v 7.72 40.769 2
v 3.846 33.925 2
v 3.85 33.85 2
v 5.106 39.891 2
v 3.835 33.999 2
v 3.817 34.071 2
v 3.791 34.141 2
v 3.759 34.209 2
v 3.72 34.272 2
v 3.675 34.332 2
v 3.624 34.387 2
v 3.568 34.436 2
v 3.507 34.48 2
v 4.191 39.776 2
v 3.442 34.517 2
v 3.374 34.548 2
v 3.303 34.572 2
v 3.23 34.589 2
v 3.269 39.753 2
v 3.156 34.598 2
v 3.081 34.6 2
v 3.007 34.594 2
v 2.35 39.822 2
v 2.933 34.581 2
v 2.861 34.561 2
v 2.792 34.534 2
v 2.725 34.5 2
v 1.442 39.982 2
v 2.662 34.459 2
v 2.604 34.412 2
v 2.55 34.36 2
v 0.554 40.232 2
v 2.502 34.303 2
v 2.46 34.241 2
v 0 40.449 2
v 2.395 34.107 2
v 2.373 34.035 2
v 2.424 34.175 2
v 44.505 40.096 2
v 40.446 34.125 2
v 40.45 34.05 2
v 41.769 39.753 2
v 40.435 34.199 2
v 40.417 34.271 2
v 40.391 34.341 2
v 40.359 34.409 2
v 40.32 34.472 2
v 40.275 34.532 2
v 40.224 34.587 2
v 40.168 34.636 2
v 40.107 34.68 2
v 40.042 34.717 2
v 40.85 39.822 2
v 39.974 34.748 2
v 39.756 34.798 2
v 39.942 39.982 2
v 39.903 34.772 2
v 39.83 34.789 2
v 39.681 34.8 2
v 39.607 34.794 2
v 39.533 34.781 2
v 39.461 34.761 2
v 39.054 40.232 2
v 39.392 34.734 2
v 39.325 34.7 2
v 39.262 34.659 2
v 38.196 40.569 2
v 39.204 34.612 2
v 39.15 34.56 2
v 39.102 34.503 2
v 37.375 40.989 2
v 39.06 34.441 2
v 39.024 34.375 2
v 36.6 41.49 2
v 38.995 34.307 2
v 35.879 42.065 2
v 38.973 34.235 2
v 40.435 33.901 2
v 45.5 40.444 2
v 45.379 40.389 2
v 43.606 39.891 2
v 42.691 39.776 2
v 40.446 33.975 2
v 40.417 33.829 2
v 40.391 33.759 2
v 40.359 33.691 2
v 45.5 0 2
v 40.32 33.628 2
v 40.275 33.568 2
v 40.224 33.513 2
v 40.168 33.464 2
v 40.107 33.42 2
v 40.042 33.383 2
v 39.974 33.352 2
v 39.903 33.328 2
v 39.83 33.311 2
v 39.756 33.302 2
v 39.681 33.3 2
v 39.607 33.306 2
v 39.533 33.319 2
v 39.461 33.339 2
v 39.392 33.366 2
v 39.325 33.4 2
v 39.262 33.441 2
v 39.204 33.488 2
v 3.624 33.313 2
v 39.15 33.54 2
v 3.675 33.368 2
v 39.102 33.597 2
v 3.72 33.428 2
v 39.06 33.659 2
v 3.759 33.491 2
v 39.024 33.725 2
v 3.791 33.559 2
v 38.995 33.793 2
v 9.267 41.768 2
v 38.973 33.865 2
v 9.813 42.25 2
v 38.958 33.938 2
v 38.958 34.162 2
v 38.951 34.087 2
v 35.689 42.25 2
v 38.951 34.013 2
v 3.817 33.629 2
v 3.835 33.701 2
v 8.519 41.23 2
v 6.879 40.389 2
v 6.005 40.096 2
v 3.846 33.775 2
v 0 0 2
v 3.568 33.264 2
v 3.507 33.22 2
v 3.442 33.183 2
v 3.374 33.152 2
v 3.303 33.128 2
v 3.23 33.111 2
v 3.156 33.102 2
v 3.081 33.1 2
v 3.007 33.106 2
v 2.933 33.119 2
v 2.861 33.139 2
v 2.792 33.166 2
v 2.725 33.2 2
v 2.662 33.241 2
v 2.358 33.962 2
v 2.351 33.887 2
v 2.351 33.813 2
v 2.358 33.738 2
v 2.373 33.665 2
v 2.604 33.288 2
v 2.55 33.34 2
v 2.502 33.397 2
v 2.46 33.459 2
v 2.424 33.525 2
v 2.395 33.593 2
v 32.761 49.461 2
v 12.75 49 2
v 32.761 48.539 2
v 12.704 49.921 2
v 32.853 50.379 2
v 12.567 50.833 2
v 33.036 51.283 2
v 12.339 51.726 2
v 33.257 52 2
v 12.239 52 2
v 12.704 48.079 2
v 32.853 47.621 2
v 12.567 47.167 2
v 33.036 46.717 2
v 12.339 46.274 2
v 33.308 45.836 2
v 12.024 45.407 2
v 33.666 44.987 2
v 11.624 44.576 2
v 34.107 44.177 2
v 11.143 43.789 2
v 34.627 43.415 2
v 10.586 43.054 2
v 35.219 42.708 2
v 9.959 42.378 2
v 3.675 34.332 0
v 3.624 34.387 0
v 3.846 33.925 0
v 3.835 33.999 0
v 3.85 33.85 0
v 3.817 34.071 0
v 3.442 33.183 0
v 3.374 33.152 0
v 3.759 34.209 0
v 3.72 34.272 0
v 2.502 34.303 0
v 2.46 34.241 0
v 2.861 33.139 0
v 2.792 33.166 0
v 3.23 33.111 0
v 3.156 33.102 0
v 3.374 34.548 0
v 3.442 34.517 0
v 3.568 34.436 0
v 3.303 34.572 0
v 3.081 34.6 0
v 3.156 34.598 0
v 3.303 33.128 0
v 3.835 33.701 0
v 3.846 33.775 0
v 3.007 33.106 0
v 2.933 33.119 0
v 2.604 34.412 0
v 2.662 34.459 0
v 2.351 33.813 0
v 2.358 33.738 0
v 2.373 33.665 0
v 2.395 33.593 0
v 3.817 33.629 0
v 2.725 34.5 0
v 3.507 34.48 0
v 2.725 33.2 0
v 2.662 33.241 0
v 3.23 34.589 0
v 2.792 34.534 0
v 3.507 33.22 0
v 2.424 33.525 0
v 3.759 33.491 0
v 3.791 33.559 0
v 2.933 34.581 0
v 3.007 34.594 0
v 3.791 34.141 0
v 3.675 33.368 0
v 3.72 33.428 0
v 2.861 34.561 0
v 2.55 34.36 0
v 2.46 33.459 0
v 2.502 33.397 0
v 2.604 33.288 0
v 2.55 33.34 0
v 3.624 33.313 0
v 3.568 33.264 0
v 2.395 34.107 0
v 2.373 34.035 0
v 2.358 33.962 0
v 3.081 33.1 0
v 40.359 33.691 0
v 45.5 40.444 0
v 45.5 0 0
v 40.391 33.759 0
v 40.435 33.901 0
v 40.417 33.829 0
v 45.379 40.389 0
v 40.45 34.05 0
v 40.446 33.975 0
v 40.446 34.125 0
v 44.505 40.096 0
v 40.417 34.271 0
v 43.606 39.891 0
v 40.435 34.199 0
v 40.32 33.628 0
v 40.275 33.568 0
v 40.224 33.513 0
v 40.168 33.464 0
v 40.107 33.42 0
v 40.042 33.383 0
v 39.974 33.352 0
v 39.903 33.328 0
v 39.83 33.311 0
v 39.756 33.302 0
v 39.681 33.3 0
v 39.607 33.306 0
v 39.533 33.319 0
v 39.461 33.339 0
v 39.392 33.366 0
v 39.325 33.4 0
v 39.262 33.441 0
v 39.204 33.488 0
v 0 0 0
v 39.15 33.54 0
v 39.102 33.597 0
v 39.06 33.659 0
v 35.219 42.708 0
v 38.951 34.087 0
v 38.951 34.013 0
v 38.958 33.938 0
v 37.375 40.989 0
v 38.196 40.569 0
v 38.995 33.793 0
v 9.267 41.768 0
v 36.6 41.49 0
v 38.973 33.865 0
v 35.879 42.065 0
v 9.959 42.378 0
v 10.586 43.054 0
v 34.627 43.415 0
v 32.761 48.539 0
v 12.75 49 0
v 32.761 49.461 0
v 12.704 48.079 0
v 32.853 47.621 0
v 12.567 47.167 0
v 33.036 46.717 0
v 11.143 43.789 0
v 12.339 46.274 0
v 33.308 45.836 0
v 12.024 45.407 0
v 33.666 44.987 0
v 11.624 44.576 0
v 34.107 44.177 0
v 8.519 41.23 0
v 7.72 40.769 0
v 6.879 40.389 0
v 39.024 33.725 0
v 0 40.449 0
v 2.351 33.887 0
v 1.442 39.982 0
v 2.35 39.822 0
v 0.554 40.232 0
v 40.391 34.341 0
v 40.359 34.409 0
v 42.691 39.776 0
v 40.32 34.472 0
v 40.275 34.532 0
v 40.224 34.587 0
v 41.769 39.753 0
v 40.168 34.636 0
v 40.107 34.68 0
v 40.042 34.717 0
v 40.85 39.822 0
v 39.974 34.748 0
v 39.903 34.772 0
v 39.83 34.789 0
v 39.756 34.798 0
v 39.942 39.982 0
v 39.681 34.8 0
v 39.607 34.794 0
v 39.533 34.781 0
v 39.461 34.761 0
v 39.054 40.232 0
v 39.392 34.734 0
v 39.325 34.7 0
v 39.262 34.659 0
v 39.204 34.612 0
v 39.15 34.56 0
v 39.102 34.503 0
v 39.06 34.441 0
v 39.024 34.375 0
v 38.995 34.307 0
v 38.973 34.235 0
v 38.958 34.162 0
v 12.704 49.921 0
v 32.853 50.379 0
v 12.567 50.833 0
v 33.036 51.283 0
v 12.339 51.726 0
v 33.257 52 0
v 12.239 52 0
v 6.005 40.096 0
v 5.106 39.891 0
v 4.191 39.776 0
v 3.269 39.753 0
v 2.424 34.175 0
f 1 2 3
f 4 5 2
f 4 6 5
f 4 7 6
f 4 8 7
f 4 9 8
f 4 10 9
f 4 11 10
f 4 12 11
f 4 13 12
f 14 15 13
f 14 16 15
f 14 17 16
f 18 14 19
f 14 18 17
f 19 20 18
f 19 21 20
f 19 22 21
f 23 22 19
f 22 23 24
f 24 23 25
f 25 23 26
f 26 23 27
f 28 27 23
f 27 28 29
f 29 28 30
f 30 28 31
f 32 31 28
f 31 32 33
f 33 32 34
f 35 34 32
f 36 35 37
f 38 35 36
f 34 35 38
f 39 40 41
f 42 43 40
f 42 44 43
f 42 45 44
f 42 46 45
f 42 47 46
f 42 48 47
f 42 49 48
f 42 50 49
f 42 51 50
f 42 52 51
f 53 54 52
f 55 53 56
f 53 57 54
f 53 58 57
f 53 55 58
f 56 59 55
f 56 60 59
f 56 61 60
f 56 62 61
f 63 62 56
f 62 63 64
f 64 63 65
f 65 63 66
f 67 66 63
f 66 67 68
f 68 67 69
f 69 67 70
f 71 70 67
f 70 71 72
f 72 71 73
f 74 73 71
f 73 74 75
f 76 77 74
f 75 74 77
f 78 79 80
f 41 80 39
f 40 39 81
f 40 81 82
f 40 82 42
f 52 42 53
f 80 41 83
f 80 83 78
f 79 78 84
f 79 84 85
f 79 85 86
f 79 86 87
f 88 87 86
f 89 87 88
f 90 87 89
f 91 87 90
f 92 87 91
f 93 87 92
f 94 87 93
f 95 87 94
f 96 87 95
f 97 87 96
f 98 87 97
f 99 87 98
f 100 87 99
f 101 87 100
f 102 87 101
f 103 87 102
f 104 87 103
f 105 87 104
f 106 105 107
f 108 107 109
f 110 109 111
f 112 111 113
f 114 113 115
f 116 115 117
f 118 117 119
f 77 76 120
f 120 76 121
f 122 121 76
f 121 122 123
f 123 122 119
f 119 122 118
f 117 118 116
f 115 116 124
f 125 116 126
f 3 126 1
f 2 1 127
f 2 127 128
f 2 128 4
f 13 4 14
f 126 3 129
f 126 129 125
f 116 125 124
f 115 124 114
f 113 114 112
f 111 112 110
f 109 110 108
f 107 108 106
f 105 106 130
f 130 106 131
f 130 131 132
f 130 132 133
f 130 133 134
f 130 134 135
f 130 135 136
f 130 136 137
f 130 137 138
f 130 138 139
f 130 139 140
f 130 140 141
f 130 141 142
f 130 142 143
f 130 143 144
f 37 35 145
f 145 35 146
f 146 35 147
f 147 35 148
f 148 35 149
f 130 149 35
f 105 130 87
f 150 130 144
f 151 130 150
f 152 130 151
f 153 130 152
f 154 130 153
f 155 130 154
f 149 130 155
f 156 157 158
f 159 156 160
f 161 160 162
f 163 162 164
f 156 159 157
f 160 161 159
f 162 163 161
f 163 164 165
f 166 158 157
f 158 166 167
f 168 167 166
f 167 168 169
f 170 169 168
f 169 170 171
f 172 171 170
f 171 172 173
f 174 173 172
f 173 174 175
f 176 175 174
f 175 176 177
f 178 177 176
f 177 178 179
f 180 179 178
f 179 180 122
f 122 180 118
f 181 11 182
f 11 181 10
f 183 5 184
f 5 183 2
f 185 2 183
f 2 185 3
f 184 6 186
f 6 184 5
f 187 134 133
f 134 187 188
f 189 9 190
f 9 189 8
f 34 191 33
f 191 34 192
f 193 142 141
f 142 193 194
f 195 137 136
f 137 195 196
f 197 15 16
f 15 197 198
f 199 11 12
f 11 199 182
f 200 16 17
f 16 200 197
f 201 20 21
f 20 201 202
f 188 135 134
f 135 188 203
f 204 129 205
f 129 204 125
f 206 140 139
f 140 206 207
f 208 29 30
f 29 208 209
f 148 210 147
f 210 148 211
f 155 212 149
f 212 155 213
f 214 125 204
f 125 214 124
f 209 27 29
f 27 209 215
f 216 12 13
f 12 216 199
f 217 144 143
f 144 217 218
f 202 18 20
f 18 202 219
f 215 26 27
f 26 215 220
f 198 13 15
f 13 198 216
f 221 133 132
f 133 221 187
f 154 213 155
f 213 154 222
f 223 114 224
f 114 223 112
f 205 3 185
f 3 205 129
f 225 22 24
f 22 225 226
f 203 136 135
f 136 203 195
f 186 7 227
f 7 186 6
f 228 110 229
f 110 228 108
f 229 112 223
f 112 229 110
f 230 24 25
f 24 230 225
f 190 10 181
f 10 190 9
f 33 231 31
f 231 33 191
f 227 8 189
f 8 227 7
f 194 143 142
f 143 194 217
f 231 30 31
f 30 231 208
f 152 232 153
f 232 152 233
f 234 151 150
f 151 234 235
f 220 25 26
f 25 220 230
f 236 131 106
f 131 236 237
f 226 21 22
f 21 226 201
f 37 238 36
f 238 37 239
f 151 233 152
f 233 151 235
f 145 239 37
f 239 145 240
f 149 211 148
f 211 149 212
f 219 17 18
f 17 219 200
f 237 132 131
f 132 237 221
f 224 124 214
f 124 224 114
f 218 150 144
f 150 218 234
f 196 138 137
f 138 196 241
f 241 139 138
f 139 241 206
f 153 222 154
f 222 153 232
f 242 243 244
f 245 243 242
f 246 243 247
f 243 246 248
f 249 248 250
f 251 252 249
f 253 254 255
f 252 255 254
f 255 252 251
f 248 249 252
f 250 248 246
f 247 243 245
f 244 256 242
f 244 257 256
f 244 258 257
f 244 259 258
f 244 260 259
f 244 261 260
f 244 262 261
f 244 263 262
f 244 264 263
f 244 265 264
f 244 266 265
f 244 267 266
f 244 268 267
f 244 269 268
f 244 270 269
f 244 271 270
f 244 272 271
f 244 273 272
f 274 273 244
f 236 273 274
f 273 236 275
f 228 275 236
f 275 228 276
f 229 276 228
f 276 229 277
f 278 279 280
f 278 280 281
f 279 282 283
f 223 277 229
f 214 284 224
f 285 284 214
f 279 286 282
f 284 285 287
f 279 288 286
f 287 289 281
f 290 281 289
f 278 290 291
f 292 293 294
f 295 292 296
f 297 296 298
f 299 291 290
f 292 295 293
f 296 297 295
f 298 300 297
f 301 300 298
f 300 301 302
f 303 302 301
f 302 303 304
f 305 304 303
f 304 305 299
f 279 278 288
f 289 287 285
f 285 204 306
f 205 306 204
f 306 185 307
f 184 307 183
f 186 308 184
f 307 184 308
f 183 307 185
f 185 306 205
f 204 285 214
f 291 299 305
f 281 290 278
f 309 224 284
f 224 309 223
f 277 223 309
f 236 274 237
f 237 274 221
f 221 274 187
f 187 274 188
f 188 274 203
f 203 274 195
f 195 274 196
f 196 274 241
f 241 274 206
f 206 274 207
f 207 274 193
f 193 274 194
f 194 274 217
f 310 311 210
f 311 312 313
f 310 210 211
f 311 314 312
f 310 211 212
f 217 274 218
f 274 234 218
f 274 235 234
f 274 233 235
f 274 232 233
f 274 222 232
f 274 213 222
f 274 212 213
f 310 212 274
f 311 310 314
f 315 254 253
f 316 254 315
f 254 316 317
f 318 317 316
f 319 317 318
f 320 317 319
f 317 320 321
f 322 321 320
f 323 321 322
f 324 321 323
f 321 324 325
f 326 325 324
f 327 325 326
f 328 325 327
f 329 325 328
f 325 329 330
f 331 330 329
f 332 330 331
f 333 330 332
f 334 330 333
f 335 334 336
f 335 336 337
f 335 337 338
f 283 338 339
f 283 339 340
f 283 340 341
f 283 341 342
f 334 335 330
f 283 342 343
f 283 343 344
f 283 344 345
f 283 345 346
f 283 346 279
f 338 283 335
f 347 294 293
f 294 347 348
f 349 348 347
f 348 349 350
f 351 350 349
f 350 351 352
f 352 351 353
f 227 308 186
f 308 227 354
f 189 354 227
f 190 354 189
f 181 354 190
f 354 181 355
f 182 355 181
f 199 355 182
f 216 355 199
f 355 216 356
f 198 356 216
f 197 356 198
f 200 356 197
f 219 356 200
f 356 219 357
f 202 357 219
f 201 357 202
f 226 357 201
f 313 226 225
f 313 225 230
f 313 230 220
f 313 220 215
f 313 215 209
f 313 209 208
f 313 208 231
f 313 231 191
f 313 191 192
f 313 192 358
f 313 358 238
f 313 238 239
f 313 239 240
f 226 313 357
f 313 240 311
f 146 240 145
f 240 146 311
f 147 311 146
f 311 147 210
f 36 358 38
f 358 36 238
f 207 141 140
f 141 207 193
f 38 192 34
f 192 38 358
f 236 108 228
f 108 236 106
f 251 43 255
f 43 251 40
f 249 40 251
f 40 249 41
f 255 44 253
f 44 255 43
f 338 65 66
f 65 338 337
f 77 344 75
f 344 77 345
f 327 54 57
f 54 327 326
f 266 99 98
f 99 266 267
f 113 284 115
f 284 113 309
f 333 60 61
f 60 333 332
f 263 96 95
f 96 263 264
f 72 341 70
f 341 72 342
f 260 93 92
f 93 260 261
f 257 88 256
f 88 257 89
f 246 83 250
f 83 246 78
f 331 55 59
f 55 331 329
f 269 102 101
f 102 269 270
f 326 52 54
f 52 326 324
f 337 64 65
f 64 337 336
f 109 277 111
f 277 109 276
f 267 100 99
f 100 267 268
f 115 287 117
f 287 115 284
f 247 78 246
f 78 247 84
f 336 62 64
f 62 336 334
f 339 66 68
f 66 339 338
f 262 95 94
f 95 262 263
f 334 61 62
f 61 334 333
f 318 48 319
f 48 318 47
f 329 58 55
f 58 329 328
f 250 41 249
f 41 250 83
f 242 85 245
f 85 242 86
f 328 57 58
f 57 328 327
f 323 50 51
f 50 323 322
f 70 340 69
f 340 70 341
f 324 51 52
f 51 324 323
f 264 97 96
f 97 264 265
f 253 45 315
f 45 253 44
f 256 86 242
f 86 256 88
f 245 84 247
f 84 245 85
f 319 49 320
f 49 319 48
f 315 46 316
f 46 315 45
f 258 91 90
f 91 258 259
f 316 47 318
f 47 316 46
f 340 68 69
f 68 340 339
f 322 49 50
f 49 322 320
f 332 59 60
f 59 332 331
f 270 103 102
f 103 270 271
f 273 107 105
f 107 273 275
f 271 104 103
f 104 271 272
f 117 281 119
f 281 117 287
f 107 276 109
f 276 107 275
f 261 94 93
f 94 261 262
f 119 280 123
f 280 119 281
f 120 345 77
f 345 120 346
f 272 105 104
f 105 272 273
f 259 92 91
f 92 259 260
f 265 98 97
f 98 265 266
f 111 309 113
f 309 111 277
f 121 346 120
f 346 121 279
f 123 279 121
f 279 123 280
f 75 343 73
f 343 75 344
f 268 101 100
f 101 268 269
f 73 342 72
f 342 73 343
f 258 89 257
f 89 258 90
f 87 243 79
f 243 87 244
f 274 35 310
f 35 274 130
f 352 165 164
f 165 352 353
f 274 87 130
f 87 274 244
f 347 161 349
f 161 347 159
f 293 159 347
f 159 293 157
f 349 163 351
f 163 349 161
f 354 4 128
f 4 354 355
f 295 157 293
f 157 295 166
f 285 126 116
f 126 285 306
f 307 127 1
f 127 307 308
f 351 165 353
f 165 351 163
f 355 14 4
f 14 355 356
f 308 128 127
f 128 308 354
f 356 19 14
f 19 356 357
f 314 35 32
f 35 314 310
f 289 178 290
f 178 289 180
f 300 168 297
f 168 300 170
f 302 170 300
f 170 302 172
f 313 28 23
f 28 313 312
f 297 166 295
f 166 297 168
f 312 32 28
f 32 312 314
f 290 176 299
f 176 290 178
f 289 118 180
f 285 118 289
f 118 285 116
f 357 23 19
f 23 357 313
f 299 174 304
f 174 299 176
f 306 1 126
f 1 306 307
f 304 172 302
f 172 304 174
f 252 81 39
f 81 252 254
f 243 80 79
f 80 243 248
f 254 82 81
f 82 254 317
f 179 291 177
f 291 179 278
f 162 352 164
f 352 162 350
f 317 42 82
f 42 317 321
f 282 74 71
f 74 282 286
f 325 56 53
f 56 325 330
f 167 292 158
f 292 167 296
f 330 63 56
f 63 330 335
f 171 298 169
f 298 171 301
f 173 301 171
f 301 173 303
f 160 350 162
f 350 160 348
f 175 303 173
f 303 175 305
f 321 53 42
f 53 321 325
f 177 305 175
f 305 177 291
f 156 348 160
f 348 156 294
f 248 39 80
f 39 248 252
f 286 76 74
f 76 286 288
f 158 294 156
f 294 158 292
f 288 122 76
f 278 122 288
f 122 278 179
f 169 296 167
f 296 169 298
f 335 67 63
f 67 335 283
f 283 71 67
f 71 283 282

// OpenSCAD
// file: 3_1_pcb.scad
//$fn = 63;
//pcb();

module pcb() {
    pcb_w = 45.5;
    pcb_d = 50;
    pcb_h = 5;
    translate([pcb_w-28,0,0]) cube([18.5,6.5,1]);
    translate([0,6.5,0]) cube([pcb_w,43.5,1]);
    translate([3.1,pcb_d-8.4,-2]) cylinder(d=1.5, h=2);
    translate([pcb_w-5.8,pcb_d-8.2,-2]) cylinder(d=1.5, h=2);
}
// file: 2_1_buck_converter.scad
// Model
//$fn = 255;
//difference() {
//    bc_w = 21.5;
//    bc_d = 44;
//    bc_h = 13.5;
//    buck_body(bc_w, bc_d, bc_h);
//}

// Buck converter body
module buck_body(width, depth, height) {
    // Main body
    cube([width,depth,height]);
    
    // Motor screw holes
    sh_size = 3.5;
    sh_h = 2;
    translate([2.5,11,-sh_h]) cylinder(d=sh_size,h=sh_h);
    translate([19,32.5,-sh_h]) cylinder(d=sh_size,h=sh_h);
}
// file: 1_3_charger.scad
//charger(0.5);

module charger(error = 0) {
    cube([18+error, 20+error, 5]);
    translate([4.5,20,1]) cube([9+error, 2+error, 3]);
}
// file: 1_2_battery.scad
// Model
//$fn = 255;
//difference() {
//    bat_d = 18.5;
//    bat_h = 65;
//    battery_body(bat_d, bat_h);
//}

// Battery body
module battery_body(diameter, height) {
    // Main body
    translate([diameter/2,diameter/2,0]) cylinder(d=diameter,h=height);
}
// file: 1_1_motor.scad
include <0_corner_cutout.scad>

// Model
//$fn = 63;
//motor_l = 42;   motor_h = 47.5;   pull = 3;
//motor_body(motor_l, motor_h);
//translate([0,0,motor_h]) mirror([0,0,1]) motor_body(motor_l, motor_h, pull);

// Motor body
module motor_body(length,height,height_pull=0) {
    height = height + height_pull;
    difference() {
        // Main body
        translate([0,0,-height_pull]) 
        cube([length,length,height]);
    
        // Corner rounding
        rounding = 7;
        translate([0,0,-height_pull]) corner_cut(rounding, height);
        translate([0, motor_l,-height_pull]) 
        rotate(270, [0,0,1]) corner_cut(rounding, height);
        translate([motor_l,0,-height_pull]) 
        rotate(90, [0,0,1]) corner_cut(rounding, height);
        translate([motor_l,motor_l,-height_pull]) 
        rotate(180, [0,0,1]) corner_cut(rounding, height);
    }
    
    // Cable extensions
        cable_w = 16;
        cable_d = 10;
        cable_h = 9 + height_pull;
    cable_shift = (length - cable_w)/2;
    translate([cable_shift,length,-height_pull]) cube([cable_w,cable_d,cable_h]);
    
    // Rotary plate
        rotary_base_d = 22; // diameter
        rotary_base_h = 2;  // height
    translate([length/2,length/2,height-height_pull]) cylinder(d=rotary_base_d,h=rotary_base_h);
    
    // Motor screw holes
    sh_size = 3;
    sh_edge_shift = 5.5;
    translate([sh_edge_shift,sh_edge_shift,height-height_pull]) cylinder(d=sh_size,h=rotary_base_h);
    translate([length-sh_edge_shift,sh_edge_shift,height-height_pull]) cylinder(d=sh_size,h=rotary_base_h);
    translate([sh_edge_shift,length-sh_edge_shift,height-height_pull]) cylinder(d=sh_size,h=rotary_base_h);
    translate([length-sh_edge_shift,length-sh_edge_shift,height-height_pull]) cylinder(d=sh_size,h=rotary_base_h);
}
// file: 0_corner_cutout.scad
// Model
//$fn = 255;
//size = 10;
//height = 10;
//corner_cut(size, height);

// Buck converter body
module corner_cut(length, height) {
    difference() {
        // Main body
        cube([length,length,height]);
        translate([length,length,0]) cylinder(d=length*2,h=height);
    }
}
// main file
include <0_corner_cutout.scad>
include <1_1_motor.scad>
include <1_2_battery.scad>
include <1_3_charger.scad>
include <2_1_buck_converter.scad>
include <3_1_pcb.scad>

$fn = 63;
// https://openscad.org/cheatsheet/

// Casing outer dimensions
case_w = 61;    // width (short side)   49 zonder batterij
case_d = 68;    // depth (long side)    56 zonder batterij

// Wall thickness
case_wt = 2;

// Battery
bat_d = 18.5;
bat_h = 65;
bat_shift = bat_d + case_wt;    // for wall at x = ?, y = ?

// PCB
pcb_w = 50;
pcb_d = 45.5;
pcb_h = 5;
pcb_slot_wt = (case_w - pcb_d)/2;

pcb_plate();

// Model
module plate(width, depth, offset=[0,0,0]) {
    translate(offset) cube([width,depth,2]);
}

module pcb_plate() {
    // Starts at 71 mm height
    difference() {
        plate(pcb_d, pcb_w+case_wt, [0,0,0]);
        translate([0,-pcb_slot_wt,case_wt]) pcb();
        // Bat holes
        translate([case_wt-pcb_slot_wt, case_d-bat_shift-pcb_slot_wt, 0]) 
        battery_body(bat_d, case_wt);
        translate([case_w-bat_shift-pcb_slot_wt, case_d-bat_shift-pcb_slot_wt, 0]) 
        battery_body(bat_d, case_wt);
    }
}
